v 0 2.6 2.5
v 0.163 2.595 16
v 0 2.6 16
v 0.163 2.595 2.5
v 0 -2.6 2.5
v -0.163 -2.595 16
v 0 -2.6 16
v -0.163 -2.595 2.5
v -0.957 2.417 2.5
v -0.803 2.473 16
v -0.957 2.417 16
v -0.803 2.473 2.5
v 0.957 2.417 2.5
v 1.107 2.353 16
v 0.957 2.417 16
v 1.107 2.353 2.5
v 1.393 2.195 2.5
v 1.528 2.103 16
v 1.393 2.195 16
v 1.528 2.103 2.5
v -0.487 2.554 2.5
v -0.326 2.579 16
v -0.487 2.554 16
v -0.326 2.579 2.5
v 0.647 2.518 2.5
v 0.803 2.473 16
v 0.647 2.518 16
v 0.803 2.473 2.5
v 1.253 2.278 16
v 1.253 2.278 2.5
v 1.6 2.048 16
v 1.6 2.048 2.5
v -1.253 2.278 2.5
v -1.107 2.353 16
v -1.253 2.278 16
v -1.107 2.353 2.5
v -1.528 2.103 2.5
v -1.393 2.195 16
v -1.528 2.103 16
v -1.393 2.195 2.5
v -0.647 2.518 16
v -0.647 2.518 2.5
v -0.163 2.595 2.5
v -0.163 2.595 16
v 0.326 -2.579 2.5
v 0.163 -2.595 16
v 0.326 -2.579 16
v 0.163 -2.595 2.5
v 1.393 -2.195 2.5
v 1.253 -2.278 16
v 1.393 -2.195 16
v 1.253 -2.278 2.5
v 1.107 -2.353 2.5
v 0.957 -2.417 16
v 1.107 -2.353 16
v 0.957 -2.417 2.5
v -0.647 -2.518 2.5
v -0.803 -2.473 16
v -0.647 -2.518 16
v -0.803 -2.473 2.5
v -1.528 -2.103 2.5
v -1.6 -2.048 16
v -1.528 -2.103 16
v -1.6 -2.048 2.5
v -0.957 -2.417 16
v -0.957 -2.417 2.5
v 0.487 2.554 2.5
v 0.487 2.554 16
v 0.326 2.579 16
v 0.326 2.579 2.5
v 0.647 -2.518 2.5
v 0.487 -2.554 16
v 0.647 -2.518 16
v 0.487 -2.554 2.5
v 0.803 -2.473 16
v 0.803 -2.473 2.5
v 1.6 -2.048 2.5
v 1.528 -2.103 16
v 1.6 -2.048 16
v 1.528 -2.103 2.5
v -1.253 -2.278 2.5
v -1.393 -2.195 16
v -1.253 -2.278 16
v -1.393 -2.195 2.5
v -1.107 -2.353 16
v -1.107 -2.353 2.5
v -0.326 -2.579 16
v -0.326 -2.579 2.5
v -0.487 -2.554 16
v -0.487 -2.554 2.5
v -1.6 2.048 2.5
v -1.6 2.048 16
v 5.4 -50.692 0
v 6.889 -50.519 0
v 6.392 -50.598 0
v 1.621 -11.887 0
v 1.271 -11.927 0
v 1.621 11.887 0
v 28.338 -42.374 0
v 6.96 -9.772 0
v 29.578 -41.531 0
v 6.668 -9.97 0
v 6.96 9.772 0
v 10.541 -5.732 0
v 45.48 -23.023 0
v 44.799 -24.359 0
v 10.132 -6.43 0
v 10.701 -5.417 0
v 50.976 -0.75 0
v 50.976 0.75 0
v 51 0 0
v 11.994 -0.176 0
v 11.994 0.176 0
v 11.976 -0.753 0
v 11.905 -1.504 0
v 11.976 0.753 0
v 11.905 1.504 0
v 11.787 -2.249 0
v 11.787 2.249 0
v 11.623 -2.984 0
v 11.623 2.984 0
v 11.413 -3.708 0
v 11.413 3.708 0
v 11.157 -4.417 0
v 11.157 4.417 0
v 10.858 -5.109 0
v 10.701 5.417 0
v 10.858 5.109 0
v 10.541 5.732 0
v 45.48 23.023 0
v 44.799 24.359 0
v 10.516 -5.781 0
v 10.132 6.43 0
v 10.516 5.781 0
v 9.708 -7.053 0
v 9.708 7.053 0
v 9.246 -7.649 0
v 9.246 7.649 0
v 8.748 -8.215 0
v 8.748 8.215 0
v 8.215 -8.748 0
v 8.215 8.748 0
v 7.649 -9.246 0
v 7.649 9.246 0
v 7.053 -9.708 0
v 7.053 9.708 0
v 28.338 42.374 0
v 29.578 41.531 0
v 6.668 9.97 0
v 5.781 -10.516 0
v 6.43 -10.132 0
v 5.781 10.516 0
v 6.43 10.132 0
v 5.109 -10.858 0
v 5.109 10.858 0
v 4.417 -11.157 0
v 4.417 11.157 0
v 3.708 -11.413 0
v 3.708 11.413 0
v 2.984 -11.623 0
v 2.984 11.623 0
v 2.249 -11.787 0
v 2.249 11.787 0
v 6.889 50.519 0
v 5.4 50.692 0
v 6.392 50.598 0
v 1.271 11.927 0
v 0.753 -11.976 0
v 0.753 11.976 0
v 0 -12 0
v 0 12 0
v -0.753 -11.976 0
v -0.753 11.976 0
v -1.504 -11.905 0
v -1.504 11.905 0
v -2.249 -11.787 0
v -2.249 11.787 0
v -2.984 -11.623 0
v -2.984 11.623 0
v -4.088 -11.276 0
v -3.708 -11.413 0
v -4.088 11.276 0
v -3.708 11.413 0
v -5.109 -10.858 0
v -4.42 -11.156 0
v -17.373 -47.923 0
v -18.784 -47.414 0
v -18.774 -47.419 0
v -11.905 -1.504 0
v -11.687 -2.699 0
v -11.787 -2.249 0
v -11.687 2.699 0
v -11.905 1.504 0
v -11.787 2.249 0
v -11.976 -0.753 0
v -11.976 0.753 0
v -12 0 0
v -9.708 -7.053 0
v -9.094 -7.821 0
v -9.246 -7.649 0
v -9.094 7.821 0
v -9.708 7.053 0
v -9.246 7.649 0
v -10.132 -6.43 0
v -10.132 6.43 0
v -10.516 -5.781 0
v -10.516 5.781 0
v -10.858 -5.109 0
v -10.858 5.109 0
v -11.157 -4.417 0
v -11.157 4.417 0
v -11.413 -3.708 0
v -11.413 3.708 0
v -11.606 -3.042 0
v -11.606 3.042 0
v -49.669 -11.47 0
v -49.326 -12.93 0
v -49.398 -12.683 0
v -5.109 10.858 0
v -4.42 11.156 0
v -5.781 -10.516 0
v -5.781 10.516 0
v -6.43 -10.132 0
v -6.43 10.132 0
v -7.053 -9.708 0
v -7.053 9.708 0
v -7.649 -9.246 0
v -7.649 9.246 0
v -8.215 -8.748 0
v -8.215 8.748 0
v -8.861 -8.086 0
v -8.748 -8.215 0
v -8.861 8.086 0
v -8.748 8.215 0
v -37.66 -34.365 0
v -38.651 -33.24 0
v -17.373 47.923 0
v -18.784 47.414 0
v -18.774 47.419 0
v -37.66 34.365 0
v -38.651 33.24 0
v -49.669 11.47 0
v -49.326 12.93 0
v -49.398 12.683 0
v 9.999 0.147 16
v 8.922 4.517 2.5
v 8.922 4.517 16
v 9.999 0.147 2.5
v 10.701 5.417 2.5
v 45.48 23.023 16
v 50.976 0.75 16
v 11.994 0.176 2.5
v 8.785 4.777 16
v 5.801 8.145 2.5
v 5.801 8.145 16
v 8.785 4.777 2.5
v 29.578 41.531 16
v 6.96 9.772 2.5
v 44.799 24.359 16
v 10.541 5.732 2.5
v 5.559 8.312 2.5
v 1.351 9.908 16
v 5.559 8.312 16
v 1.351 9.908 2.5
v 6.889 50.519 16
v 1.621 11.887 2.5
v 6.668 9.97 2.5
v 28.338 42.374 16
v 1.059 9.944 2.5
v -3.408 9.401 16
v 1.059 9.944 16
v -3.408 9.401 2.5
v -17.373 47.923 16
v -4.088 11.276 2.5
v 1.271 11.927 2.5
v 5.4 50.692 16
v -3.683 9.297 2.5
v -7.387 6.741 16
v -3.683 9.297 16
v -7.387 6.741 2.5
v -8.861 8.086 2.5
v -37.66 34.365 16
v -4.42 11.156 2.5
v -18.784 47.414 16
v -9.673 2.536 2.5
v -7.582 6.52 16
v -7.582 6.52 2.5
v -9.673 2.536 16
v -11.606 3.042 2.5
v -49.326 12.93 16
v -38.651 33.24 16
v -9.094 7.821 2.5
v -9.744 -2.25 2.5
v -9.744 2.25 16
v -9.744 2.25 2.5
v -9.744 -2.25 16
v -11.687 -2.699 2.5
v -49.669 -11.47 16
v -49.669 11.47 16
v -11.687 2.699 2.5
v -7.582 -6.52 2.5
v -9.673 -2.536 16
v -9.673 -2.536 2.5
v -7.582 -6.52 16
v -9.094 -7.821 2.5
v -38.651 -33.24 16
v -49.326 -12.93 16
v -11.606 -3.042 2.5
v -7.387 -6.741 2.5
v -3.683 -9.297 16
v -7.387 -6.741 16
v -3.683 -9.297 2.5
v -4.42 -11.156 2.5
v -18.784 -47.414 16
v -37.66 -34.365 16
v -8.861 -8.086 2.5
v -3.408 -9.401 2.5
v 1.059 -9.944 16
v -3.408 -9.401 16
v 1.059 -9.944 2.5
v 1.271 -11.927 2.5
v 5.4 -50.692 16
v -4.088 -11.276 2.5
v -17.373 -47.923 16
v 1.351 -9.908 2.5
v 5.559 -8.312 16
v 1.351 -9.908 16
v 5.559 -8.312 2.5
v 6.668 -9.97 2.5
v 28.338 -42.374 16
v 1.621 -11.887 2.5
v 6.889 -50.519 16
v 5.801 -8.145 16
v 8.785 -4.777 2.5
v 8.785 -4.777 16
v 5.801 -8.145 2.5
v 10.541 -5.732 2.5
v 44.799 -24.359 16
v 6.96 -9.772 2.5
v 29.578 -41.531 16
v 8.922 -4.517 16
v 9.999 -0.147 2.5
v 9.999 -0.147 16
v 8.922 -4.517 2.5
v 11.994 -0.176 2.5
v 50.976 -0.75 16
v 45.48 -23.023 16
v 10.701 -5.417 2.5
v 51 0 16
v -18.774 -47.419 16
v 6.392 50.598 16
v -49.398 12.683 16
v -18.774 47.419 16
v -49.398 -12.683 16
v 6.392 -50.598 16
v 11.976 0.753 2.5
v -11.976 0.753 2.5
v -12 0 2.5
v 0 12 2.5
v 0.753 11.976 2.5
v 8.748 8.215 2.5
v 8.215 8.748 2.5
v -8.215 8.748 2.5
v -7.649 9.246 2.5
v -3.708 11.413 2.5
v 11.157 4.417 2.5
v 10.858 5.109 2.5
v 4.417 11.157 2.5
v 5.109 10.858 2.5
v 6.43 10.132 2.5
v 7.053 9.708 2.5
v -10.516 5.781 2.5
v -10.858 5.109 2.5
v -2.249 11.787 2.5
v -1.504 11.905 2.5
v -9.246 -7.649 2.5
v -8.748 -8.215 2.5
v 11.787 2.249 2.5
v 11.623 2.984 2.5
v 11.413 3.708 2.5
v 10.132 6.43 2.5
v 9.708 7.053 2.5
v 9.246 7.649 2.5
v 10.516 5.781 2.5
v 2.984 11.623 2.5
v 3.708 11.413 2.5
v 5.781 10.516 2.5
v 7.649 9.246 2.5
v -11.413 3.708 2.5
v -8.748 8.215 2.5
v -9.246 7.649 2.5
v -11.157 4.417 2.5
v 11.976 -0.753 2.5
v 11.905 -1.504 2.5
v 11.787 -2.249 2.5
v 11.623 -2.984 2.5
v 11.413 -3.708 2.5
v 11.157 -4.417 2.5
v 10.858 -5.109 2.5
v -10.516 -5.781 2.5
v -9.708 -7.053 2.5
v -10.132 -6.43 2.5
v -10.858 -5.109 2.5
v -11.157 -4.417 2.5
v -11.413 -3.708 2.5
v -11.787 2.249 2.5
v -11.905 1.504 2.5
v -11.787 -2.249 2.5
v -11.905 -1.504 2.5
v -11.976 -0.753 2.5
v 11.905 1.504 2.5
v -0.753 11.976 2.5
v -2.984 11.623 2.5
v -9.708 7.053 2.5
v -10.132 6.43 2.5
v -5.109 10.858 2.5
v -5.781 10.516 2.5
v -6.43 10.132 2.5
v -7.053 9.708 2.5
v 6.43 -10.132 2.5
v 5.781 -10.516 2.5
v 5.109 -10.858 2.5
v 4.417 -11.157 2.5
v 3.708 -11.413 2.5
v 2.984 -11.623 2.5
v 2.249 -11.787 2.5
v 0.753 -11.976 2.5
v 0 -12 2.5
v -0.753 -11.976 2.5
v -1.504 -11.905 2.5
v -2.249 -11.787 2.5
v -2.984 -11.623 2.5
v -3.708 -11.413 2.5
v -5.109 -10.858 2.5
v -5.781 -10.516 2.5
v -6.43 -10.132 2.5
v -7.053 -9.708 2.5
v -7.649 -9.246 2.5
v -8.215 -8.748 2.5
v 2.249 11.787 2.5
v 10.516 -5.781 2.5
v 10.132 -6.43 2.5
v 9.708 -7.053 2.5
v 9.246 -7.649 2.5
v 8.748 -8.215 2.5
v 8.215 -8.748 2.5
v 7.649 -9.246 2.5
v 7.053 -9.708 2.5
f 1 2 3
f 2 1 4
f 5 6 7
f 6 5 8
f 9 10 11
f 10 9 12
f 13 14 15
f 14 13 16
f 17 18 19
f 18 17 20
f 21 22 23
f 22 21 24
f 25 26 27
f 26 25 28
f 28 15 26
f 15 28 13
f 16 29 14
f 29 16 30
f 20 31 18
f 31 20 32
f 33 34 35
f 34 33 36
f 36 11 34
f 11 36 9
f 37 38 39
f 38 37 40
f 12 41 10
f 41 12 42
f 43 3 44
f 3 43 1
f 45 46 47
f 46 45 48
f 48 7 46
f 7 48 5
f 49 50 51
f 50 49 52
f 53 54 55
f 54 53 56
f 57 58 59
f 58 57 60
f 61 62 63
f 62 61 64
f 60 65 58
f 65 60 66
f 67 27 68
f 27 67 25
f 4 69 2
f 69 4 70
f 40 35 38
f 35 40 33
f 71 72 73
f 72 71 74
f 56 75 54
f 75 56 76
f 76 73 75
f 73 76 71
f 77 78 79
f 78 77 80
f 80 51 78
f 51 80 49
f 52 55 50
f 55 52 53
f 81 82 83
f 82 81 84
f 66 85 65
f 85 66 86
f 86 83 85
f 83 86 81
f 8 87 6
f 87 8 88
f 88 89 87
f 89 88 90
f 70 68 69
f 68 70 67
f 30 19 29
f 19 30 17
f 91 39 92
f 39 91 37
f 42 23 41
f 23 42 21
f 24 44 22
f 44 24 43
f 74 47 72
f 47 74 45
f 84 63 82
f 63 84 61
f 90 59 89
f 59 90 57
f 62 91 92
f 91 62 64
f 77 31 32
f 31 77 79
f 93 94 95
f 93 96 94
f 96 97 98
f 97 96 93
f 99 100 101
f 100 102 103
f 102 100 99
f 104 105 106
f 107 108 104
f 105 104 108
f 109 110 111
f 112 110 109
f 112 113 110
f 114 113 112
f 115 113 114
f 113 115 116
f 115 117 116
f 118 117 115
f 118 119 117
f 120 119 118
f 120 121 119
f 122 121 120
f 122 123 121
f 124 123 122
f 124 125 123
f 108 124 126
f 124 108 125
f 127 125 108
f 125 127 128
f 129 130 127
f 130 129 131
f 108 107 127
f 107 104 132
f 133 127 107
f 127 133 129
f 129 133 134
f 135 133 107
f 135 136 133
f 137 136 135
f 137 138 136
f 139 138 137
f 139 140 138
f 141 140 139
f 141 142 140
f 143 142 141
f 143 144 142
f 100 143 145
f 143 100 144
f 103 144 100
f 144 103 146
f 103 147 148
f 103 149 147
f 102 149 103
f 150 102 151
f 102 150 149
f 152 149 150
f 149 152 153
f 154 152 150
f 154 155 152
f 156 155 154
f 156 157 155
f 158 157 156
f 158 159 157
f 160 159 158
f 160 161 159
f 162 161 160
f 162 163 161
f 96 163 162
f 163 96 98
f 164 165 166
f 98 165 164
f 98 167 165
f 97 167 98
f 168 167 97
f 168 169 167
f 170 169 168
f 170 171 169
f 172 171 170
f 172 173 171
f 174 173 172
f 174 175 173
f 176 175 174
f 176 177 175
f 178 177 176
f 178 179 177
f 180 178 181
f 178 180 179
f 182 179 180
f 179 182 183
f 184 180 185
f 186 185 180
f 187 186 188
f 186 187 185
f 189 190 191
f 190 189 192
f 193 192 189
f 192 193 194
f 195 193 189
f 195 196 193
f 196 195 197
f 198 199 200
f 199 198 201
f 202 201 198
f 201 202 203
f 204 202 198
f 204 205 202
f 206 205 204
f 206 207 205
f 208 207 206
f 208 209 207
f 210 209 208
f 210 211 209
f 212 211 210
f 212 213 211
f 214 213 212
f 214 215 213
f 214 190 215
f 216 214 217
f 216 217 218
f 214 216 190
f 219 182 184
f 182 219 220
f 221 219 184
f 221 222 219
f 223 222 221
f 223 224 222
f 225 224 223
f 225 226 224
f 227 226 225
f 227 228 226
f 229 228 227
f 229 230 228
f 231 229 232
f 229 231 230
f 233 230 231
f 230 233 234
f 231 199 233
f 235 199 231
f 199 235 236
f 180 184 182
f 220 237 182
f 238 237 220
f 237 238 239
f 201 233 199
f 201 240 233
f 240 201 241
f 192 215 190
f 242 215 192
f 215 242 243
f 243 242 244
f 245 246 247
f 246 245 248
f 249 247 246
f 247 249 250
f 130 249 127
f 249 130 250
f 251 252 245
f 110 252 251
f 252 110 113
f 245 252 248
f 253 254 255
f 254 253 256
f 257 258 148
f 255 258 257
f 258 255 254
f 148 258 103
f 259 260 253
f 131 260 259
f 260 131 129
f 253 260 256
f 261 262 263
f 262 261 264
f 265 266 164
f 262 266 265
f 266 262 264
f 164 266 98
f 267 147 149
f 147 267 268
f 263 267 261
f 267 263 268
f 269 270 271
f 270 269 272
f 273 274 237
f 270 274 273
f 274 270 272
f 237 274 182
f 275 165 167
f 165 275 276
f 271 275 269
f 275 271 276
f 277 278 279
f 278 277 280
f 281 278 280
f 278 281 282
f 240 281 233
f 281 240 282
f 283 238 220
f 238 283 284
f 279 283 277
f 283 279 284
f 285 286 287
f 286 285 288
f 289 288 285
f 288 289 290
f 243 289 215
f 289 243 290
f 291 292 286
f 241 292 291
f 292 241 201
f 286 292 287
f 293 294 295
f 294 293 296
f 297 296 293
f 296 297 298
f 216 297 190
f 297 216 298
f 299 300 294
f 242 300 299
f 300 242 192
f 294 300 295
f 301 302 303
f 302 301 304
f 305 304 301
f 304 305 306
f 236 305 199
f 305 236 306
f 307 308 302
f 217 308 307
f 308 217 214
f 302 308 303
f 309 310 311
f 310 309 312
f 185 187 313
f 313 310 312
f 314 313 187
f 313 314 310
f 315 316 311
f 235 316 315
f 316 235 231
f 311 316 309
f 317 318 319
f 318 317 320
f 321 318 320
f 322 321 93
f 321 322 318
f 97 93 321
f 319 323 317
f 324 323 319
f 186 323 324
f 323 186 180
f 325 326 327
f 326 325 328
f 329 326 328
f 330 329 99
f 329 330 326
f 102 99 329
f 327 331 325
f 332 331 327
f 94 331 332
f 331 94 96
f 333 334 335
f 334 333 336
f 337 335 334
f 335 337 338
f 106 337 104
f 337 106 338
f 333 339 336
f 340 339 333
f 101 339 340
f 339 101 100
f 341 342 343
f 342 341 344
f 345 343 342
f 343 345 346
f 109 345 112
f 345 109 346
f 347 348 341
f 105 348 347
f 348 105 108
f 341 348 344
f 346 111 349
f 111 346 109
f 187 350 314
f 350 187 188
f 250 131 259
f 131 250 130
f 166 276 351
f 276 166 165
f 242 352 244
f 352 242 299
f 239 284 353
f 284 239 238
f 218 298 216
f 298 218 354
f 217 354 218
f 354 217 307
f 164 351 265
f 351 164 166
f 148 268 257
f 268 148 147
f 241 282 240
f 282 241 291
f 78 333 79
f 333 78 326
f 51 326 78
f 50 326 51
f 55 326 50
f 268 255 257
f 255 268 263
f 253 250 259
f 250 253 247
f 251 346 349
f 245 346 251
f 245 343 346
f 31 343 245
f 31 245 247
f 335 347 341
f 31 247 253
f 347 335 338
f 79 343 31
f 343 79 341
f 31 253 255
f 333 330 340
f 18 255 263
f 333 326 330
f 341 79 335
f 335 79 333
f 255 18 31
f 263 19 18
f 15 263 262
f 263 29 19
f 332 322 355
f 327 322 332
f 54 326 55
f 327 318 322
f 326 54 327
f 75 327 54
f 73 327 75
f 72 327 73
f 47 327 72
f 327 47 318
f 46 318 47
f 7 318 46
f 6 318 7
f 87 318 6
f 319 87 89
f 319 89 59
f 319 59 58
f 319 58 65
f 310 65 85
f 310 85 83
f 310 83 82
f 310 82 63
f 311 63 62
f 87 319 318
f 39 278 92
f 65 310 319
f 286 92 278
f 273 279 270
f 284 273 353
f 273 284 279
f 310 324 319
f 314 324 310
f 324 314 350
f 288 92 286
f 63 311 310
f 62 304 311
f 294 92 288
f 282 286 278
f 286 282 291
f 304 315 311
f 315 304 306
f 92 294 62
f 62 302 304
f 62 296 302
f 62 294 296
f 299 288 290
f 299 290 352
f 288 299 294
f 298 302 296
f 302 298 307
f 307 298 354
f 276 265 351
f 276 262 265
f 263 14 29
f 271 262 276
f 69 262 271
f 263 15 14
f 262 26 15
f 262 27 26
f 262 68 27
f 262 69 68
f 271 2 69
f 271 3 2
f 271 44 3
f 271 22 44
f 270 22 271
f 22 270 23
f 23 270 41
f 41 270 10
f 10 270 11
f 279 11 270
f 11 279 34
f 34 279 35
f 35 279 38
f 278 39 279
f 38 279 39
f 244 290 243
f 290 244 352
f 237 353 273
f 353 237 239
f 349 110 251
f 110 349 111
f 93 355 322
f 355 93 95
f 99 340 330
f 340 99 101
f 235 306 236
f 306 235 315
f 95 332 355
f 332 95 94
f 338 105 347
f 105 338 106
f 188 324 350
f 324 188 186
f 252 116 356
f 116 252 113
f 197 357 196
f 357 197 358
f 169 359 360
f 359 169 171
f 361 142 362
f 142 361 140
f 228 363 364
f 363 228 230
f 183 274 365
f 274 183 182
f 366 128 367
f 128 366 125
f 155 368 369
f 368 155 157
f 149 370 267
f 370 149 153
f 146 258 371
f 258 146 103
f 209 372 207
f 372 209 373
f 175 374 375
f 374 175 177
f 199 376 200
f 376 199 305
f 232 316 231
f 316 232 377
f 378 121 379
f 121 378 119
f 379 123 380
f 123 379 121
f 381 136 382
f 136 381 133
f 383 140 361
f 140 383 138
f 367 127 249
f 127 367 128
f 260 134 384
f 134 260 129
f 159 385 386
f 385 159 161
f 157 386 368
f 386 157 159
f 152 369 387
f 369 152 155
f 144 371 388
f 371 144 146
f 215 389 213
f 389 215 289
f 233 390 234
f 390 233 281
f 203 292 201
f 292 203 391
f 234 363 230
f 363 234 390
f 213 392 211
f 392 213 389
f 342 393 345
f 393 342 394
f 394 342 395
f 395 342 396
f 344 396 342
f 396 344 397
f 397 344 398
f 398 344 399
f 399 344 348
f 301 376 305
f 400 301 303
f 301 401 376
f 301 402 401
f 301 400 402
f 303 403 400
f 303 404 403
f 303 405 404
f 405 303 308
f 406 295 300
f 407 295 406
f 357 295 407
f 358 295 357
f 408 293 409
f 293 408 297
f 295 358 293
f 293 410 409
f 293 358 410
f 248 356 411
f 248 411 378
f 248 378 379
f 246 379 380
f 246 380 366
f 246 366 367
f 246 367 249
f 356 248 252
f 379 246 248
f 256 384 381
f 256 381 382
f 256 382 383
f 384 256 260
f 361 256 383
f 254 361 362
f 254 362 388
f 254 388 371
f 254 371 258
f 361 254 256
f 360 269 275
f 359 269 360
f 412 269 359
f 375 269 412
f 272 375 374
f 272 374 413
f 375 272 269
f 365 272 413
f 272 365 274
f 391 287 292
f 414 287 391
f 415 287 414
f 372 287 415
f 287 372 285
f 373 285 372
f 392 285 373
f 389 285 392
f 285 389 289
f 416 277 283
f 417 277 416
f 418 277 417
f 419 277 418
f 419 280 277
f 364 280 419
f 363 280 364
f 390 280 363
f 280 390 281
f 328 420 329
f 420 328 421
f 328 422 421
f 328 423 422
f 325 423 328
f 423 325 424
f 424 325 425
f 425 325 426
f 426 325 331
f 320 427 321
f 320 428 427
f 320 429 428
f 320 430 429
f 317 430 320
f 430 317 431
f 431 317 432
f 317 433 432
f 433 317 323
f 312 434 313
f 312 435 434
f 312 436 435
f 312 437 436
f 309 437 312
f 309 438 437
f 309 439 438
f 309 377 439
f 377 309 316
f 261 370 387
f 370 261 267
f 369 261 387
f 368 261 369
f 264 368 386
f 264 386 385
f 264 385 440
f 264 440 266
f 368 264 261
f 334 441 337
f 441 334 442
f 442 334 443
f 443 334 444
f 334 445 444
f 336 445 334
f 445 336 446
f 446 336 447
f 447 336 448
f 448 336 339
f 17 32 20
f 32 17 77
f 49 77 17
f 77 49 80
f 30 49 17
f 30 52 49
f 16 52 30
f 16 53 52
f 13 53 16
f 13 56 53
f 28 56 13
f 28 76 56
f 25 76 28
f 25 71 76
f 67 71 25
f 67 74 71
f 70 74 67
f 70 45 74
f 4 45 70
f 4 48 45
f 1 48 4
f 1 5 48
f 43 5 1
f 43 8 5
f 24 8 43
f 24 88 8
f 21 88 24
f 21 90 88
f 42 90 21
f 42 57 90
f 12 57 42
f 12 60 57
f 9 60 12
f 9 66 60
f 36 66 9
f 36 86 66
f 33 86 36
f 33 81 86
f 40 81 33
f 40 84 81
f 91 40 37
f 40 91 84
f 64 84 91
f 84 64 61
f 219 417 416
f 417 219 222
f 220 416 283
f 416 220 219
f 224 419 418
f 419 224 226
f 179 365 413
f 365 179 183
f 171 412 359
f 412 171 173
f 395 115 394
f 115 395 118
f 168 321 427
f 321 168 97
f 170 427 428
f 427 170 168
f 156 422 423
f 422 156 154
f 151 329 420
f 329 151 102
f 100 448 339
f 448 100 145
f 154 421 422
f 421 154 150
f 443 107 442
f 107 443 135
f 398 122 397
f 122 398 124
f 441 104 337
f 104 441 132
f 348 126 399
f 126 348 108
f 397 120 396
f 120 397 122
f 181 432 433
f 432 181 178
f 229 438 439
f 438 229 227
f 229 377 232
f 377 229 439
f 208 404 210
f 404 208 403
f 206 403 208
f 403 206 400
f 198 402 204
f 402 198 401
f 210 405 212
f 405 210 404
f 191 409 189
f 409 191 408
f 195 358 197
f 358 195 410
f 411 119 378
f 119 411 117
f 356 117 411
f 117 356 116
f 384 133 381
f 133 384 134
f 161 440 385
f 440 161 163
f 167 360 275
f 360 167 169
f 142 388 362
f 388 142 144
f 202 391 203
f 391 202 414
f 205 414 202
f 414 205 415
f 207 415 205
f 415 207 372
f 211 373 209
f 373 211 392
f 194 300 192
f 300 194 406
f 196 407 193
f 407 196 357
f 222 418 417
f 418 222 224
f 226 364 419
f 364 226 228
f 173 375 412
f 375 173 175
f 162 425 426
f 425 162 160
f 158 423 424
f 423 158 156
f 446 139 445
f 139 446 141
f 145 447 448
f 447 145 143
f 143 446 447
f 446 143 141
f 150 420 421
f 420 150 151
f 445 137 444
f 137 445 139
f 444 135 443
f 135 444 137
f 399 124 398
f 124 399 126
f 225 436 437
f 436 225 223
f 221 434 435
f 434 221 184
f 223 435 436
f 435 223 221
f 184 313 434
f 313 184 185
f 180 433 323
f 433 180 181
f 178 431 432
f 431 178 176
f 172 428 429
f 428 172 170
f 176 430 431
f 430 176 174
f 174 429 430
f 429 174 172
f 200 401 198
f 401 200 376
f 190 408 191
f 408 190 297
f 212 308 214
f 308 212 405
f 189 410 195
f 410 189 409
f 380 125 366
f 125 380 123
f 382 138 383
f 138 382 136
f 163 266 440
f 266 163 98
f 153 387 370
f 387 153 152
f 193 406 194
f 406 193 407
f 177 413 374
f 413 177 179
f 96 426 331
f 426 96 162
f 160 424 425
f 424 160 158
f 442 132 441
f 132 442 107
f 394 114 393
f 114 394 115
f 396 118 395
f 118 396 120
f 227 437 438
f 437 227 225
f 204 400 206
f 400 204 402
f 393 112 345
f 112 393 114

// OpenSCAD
// Medify - Floor 2: The Windmail (Lowered for 1mm Clearance)
$fn = 100;

// --- פרמטרים הנדסיים ---
outer_dia = 102;      
height = 16;          // הונמך מ-18 ל-16 מ"מ כדי לא לגעת במכסה (17 מ"מ פנויים)
wall_thickness = 1.5; 
compartments = 13;
center_core_r = 10;   

angle_per_comp = 360 / compartments;
wall_angle = (wall_thickness * 360) / (PI * outer_dia); 
cutout_angle = angle_per_comp - wall_angle;

difference() {
    // 1. הגוף המרכזי
    cylinder(h = height, d = outer_dia);

    // 2. חיתוך 13 התאים
    for (i = [0 : compartments - 1]) {
        rotate([0, 0, i * angle_per_comp + wall_angle/2])
        intersection() {
            translate([0, 0, -1]) cylinder(h = height + 2, r = outer_dia/2 + 2);
            linear_extrude(height = height + 2)
                polygon(points=[
                    [center_core_r, 0],
                    [outer_dia, 0],
                    [outer_dia * cos(cutout_angle), outer_dia * sin(cutout_angle)],
                    [center_core_r * cos(cutout_angle), center_core_r * sin(cutout_angle)]
                ]);
        }
    }

    // 3. חור הציר - Double-D Shaft (למנוע 28BYJ-48)
    translate([0, 0, -1])
    intersection() {
        cylinder(h = height + 2, d = 5.2); 
        translate([0, 0, (height + 2)/2])
            cube([3.2, 10, height + 2], center = true);
    }
}

// 4. חיזוק רצפה במרכז
cylinder(h = 2.5, r = center_core_r + 2);
